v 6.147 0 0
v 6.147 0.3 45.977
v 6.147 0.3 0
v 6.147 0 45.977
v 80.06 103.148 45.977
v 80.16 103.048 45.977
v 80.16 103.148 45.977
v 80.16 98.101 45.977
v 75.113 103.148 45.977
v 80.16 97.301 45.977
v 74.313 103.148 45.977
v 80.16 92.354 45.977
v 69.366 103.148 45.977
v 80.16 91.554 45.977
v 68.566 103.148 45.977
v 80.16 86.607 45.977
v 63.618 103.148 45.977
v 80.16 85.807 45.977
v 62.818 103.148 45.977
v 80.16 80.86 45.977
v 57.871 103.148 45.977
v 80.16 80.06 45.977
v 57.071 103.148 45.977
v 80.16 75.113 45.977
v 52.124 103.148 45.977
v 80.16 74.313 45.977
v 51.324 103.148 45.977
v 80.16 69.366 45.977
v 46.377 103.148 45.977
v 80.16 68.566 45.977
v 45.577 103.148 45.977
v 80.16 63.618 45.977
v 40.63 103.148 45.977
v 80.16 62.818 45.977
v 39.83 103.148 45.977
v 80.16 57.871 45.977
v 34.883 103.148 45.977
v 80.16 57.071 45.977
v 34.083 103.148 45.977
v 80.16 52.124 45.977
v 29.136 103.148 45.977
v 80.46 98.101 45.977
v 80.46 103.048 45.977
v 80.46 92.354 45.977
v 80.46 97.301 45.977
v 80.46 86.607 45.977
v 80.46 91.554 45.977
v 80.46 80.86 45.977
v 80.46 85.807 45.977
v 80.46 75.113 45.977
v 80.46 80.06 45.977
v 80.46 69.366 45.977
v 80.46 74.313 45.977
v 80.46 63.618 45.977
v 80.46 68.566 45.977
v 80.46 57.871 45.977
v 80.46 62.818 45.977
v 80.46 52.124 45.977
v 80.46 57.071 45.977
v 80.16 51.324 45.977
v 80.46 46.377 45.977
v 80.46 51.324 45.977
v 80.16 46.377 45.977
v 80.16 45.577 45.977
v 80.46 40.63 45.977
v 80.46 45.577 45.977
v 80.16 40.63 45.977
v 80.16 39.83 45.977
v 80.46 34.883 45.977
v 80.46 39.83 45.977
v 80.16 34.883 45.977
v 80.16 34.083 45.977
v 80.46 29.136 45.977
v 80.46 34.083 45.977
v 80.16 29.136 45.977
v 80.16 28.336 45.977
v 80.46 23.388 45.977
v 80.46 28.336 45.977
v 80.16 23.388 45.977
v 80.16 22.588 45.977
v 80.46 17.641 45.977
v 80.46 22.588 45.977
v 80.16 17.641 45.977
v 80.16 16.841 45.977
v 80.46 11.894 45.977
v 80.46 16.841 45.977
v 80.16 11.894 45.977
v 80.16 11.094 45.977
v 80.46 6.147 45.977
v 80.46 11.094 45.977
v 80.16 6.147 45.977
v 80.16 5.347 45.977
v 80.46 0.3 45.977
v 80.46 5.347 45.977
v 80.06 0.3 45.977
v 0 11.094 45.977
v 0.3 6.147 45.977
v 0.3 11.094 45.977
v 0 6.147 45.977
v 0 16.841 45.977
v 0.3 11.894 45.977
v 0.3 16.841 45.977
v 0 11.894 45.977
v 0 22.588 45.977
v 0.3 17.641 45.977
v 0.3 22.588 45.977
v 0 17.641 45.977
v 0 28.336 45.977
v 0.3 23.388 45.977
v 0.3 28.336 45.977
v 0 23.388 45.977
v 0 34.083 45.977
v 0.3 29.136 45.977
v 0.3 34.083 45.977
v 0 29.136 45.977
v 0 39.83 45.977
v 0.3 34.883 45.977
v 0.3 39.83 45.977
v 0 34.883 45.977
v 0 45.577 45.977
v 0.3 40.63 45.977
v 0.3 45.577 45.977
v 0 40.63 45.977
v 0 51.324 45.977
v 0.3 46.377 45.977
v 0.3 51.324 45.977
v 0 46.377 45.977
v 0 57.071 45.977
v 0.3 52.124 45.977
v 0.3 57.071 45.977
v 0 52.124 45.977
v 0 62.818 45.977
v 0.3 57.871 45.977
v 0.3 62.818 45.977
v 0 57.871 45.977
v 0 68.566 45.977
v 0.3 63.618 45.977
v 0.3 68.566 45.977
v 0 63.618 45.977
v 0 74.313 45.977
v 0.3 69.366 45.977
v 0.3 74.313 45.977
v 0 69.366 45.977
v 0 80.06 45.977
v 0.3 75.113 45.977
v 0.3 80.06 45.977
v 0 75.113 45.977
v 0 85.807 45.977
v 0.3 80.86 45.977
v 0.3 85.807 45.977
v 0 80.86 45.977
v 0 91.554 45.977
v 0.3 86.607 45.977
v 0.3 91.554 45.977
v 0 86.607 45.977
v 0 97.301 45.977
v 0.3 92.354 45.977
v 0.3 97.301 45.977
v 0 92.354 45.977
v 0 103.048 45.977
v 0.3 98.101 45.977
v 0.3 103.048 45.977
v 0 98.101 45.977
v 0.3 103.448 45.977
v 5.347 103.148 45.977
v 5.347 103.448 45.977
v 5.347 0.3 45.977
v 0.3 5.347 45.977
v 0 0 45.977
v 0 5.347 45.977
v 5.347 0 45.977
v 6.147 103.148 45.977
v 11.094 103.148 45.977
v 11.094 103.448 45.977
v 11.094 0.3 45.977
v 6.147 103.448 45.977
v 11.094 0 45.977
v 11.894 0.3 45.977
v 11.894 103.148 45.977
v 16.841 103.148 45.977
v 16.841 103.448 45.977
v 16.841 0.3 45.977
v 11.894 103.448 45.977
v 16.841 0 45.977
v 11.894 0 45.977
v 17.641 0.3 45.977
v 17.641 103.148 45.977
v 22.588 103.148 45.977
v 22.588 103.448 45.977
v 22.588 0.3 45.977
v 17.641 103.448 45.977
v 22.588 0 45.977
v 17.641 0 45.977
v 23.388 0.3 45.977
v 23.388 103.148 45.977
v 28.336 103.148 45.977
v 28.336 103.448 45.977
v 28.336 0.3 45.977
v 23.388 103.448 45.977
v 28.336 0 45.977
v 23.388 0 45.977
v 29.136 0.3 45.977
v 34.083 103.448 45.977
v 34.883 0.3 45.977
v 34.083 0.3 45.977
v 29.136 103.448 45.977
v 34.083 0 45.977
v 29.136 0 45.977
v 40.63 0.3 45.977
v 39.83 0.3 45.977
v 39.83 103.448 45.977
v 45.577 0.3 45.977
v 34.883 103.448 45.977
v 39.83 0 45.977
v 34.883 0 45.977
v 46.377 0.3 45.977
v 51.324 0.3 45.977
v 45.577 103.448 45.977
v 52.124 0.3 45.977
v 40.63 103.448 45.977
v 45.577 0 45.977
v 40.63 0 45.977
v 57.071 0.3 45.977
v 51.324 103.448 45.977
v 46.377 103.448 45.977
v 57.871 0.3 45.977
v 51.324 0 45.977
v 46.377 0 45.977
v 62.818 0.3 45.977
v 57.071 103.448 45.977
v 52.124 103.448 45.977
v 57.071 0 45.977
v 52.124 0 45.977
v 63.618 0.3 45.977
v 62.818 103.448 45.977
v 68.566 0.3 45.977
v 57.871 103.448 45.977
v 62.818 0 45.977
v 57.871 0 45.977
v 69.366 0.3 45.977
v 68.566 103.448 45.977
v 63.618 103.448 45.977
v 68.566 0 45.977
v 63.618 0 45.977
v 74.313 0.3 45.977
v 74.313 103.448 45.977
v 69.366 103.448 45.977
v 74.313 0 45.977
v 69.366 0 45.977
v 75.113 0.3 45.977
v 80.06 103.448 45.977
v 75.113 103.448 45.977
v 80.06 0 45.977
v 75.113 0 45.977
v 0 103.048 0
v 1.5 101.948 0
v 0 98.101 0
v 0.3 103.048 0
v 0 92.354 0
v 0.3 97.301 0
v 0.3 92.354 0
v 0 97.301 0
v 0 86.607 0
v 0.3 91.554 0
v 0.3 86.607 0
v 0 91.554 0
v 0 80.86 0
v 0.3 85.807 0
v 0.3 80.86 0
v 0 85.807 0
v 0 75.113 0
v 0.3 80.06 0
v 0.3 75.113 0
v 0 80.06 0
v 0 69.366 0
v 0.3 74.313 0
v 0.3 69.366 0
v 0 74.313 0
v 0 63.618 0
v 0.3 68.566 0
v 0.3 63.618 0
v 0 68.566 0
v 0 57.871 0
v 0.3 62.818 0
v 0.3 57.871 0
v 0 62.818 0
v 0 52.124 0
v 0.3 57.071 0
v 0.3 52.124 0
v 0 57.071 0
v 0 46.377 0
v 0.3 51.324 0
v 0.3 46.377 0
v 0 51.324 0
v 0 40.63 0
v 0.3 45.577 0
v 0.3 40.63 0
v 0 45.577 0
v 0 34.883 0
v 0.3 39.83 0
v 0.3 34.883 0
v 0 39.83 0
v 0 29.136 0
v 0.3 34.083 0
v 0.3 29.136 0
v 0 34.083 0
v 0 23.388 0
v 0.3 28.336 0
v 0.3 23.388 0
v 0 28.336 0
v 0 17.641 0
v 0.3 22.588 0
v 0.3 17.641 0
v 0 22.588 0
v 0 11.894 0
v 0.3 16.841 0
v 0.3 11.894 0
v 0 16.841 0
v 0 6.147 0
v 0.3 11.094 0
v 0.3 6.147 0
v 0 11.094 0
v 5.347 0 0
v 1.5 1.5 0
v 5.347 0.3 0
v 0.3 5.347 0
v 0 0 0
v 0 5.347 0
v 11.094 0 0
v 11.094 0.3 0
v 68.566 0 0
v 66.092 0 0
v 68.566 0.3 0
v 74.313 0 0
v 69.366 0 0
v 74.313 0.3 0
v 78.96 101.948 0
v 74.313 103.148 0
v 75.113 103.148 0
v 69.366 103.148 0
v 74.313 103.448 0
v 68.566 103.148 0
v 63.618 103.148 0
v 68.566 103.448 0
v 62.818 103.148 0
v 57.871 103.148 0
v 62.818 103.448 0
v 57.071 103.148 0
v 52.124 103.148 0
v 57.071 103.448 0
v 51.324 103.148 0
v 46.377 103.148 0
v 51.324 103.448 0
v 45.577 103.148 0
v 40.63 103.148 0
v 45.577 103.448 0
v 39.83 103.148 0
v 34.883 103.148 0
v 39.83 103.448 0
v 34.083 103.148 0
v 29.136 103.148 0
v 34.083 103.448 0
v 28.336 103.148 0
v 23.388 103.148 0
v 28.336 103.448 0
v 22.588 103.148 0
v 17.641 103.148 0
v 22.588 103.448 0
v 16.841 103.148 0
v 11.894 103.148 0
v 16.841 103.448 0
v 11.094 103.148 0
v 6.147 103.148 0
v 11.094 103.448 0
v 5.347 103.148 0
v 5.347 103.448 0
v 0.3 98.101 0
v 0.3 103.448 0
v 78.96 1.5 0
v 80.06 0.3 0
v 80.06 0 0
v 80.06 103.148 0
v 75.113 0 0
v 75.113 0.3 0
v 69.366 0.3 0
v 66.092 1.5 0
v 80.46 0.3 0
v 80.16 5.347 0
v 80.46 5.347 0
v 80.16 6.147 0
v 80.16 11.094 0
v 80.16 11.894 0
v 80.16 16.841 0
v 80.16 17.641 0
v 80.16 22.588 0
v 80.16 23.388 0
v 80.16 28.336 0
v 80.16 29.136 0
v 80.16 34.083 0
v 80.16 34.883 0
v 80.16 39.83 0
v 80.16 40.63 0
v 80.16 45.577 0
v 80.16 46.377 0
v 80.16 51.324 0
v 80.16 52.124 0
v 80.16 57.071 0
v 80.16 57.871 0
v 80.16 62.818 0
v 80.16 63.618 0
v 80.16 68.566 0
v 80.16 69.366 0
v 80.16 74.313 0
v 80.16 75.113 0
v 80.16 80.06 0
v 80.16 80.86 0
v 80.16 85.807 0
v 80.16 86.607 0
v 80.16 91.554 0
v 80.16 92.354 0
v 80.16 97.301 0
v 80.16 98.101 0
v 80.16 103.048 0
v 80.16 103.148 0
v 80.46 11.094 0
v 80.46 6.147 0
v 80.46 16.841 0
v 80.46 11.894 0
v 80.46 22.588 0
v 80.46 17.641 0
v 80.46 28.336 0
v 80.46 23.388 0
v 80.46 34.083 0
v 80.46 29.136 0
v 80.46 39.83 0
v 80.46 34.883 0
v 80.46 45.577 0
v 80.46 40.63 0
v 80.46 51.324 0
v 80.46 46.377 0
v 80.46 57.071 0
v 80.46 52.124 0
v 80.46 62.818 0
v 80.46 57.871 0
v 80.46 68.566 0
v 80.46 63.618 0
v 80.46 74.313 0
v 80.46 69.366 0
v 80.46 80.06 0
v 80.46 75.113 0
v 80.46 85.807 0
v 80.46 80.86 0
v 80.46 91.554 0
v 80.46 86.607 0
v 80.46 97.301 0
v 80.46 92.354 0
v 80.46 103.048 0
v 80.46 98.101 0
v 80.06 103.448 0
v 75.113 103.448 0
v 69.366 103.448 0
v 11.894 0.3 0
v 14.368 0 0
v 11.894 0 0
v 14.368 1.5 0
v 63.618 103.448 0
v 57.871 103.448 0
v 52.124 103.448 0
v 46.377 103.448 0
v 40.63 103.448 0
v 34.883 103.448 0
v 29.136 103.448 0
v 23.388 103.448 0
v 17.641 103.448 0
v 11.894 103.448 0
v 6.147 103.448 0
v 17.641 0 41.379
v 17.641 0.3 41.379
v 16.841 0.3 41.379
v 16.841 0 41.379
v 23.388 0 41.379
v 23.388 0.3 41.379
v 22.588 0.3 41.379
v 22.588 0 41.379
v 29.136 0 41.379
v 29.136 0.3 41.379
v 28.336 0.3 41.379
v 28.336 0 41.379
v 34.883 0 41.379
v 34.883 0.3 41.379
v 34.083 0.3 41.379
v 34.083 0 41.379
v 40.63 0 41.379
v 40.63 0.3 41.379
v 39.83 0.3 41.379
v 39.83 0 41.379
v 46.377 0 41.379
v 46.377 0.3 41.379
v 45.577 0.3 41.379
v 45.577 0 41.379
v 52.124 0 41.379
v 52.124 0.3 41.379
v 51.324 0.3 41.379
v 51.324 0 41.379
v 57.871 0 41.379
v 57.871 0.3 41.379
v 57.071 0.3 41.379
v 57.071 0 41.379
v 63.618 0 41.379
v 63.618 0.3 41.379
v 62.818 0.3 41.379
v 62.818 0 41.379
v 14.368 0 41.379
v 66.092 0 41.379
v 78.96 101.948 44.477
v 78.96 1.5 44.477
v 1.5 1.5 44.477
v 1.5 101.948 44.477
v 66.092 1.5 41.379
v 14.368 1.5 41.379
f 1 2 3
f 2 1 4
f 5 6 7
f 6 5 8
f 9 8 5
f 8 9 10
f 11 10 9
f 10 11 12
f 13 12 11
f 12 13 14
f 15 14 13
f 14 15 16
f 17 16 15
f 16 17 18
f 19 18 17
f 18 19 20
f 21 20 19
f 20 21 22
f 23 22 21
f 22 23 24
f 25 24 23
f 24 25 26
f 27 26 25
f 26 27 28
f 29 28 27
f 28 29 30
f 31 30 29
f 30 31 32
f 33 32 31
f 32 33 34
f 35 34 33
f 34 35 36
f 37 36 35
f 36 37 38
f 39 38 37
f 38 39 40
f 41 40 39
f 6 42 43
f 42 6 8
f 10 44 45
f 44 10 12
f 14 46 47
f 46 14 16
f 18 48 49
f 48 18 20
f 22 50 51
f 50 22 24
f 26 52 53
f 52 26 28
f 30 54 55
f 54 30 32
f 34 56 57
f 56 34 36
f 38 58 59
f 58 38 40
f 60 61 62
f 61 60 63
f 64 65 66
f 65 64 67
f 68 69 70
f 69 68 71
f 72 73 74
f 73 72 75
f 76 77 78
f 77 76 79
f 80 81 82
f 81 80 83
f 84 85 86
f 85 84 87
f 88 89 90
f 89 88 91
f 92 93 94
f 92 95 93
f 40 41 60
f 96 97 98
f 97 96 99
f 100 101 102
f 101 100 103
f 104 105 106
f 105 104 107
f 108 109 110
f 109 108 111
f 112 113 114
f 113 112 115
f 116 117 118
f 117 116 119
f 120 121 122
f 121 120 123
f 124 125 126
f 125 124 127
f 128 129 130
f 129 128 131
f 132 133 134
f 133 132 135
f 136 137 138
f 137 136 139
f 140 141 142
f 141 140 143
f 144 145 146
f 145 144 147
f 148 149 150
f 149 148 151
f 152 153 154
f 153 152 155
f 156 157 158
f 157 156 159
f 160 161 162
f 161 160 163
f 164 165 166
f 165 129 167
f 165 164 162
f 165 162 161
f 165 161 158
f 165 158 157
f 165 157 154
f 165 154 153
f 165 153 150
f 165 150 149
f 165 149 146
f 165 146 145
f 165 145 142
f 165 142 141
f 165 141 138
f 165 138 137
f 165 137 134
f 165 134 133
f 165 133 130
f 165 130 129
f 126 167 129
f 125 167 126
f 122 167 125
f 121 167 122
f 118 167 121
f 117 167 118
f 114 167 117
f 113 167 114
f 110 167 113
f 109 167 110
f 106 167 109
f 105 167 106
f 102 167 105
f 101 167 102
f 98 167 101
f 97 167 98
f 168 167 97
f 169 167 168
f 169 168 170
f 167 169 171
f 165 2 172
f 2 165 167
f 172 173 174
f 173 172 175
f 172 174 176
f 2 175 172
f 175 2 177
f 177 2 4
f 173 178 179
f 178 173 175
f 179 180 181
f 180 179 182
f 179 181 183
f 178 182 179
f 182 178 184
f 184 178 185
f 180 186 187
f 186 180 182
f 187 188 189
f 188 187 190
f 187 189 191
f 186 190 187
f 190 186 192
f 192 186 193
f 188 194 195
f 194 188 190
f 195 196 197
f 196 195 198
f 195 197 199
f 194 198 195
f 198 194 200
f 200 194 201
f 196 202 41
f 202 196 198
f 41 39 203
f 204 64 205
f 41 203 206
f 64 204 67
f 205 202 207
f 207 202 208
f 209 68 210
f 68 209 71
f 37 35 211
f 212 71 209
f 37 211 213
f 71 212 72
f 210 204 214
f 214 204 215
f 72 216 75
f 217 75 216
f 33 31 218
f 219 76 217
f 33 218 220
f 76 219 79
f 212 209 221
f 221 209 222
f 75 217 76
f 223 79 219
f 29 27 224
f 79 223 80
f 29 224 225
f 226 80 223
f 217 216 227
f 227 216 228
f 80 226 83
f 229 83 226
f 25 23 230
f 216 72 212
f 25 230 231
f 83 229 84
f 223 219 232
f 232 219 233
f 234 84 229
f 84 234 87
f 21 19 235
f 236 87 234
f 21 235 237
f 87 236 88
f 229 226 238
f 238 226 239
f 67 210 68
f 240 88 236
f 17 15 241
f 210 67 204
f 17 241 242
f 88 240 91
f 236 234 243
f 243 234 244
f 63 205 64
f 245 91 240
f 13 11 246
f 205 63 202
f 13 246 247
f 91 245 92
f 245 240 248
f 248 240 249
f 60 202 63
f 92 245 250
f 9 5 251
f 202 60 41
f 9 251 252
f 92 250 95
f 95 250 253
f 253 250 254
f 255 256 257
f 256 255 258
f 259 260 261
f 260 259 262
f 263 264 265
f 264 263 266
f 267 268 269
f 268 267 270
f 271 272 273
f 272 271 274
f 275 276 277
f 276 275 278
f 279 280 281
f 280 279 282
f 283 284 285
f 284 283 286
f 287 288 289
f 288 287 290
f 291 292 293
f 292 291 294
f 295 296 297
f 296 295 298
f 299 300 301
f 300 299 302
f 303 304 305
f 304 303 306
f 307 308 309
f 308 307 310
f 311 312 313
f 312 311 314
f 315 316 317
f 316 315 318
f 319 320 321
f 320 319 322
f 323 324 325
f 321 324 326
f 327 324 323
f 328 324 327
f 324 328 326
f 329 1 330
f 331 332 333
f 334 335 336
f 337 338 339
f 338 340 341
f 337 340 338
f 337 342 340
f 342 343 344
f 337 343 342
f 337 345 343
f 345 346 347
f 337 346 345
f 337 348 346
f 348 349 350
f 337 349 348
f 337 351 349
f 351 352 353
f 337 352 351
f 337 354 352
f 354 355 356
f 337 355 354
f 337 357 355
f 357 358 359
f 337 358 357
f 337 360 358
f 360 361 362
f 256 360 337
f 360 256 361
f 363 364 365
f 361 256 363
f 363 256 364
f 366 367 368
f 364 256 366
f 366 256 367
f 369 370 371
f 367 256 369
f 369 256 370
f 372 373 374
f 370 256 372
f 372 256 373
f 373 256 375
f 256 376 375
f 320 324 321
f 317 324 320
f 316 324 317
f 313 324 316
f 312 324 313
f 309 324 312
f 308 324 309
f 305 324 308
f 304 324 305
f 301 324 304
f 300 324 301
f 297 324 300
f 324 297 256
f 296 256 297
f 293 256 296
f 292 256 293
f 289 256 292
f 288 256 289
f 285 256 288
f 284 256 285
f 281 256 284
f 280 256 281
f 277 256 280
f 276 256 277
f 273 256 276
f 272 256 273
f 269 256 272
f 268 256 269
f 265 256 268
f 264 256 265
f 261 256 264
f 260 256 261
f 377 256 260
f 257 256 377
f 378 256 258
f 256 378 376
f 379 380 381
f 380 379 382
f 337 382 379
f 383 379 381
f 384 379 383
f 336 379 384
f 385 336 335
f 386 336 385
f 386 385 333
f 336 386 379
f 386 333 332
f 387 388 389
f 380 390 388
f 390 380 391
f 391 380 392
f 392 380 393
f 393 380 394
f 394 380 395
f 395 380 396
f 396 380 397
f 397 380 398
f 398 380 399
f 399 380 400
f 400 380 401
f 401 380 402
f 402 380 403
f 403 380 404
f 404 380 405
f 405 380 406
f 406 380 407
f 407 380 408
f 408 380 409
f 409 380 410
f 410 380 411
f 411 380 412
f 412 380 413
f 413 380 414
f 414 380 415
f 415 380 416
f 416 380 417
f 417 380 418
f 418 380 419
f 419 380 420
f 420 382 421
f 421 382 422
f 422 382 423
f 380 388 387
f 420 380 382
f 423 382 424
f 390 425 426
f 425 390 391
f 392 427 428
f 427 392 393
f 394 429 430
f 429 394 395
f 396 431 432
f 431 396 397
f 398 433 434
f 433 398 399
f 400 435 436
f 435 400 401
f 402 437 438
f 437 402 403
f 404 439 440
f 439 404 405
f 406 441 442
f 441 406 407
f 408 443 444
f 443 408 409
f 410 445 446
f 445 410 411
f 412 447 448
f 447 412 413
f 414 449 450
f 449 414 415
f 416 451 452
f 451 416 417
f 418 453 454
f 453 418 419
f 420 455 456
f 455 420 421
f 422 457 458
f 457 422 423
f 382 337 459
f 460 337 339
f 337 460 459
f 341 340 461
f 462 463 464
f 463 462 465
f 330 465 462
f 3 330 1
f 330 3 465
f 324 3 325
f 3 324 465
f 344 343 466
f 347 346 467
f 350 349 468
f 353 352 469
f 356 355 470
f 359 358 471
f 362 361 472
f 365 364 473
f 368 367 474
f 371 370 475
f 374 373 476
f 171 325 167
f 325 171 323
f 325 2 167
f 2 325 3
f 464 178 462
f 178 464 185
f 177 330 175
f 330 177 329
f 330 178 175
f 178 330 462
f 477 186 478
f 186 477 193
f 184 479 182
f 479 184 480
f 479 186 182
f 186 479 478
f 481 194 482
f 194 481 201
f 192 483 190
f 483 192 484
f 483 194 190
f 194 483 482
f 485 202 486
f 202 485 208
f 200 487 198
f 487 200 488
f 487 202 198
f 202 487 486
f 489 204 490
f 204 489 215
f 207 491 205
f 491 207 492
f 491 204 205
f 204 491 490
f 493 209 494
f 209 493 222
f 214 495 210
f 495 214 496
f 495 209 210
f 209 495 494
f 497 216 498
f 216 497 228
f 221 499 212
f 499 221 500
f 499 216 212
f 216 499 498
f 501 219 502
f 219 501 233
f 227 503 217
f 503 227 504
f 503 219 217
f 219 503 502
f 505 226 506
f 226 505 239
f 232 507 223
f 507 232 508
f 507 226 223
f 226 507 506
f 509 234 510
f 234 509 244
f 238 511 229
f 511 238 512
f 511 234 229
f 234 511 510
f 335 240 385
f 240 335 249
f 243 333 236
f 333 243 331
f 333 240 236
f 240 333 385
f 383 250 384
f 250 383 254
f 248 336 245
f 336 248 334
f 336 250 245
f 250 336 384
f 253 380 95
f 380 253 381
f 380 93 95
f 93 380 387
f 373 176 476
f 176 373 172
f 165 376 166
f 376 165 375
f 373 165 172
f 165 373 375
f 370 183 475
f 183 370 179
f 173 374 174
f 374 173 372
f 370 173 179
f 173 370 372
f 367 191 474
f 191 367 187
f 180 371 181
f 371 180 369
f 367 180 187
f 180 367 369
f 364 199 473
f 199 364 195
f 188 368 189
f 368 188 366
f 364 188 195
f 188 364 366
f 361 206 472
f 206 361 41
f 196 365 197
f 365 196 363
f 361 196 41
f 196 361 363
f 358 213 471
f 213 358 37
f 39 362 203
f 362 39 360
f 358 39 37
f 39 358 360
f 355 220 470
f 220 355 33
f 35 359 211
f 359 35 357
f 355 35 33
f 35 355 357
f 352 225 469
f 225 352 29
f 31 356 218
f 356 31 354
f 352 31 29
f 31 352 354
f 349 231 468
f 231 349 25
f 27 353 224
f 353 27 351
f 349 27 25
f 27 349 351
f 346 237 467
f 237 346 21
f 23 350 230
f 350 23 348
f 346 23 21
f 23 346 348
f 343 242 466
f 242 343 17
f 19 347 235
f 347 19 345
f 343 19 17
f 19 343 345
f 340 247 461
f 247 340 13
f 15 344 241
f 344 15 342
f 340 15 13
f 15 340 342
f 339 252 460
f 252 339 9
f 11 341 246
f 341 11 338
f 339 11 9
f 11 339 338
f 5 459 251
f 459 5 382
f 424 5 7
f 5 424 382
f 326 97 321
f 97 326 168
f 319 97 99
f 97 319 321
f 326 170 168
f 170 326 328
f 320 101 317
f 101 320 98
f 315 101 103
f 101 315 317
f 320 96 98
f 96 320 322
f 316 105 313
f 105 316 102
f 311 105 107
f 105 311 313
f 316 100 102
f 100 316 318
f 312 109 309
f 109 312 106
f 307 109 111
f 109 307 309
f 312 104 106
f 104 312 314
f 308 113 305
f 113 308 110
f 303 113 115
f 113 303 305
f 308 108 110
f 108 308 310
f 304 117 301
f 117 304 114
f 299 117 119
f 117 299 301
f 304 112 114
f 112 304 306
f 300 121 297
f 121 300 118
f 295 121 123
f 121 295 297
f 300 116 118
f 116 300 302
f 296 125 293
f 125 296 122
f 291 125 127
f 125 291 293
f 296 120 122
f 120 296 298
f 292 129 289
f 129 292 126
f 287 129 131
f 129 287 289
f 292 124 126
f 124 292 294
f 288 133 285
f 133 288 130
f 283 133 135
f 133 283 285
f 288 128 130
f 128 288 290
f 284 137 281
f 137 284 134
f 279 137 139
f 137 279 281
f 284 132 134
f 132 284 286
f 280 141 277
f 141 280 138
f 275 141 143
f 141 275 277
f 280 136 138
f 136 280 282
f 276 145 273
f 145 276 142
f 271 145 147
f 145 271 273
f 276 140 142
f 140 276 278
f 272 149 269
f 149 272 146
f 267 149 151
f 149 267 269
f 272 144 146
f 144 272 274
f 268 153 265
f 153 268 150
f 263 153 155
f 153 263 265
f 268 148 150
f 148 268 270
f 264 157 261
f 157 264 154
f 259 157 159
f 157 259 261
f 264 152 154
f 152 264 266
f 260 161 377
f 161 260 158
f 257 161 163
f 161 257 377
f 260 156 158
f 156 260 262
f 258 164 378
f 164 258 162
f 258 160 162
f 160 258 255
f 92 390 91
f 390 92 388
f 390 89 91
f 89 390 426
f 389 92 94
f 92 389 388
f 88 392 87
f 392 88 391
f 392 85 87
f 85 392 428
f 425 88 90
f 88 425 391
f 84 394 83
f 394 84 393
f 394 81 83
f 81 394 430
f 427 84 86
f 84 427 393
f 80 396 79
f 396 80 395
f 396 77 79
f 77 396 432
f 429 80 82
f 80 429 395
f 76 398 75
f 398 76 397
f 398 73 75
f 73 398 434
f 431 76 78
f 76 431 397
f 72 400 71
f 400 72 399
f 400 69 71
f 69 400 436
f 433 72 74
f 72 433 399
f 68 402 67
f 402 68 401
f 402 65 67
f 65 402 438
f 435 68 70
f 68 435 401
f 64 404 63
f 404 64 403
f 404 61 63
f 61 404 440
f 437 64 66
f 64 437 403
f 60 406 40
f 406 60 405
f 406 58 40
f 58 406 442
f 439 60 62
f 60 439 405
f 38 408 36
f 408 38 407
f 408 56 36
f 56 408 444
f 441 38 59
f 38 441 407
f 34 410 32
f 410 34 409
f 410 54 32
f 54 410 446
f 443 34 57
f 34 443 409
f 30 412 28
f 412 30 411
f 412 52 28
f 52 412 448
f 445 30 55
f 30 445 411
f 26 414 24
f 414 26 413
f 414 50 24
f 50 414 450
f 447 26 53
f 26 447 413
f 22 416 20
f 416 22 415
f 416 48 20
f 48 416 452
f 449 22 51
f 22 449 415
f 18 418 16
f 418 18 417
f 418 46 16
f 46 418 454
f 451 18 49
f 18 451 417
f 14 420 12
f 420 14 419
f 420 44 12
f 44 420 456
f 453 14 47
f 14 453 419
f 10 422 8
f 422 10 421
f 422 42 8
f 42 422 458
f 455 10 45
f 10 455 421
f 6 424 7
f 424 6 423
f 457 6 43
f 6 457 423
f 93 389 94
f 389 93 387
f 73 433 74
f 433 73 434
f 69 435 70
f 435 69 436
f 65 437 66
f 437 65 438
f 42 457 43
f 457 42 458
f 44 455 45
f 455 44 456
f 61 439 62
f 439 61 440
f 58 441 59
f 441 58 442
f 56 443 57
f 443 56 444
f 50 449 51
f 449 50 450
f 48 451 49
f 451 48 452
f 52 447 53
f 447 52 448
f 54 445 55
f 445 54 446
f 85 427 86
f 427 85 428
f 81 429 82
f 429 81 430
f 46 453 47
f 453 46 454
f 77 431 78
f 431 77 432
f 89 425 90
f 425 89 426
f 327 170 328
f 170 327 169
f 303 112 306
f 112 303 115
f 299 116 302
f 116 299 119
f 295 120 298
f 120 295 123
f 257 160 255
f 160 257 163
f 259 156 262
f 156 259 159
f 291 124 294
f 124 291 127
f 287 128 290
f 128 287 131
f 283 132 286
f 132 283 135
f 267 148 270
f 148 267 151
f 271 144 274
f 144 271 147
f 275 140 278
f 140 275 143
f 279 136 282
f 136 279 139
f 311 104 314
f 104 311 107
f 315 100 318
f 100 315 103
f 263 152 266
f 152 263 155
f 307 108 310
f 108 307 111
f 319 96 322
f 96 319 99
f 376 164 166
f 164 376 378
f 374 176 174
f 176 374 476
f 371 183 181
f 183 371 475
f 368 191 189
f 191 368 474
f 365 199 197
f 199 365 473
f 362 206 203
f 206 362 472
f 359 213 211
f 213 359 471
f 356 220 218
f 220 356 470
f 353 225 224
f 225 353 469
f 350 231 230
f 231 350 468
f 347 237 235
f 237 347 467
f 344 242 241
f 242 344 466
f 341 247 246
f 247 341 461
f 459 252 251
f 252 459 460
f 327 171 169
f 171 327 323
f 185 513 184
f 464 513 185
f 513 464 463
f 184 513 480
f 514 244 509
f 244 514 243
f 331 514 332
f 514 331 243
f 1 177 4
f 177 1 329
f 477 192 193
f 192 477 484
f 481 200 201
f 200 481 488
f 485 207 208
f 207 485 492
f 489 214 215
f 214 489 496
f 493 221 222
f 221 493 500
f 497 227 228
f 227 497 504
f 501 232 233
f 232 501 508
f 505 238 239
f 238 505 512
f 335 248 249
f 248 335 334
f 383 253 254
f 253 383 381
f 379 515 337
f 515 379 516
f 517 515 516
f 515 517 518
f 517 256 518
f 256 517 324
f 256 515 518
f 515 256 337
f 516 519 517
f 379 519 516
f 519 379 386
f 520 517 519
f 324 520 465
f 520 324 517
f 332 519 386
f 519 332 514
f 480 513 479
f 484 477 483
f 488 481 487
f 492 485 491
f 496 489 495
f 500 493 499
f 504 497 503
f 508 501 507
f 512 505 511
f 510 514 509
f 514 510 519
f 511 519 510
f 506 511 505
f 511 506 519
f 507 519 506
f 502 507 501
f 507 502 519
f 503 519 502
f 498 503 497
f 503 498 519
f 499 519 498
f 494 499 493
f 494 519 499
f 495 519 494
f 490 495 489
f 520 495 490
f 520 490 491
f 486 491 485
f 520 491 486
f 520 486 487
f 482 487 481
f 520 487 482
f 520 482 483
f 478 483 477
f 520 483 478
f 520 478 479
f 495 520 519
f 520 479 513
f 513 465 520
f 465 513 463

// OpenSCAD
/*
 * PROMPT: Cities-Skylines-style police station garage annex in H0 scale (1:87).
 * Single-storey building with large vehicle bay opening on front face, vertical metal
 * panel siding grooves on all four walls, closed flat roof. FDM printable hollow
 * shell open bottom.
 */

$fn = 32;
S = 1 / 87;

wall_t = 1.5;

// ── GARAGE ────────────────────────────────────────────────────────────────────
annex_w_real  = 7000;   //  80.5 mm H0
annex_d_real  = 9000;   // 103.4 mm H0
annex_h_real  = 4000;   //  46.0 mm H0
garage_w_real = 4500;   //  51.7 mm H0  (vehicle bay opening width)
garage_h_real = 3600;   //  41.4 mm H0  (vehicle bay opening height)

siding_p_real = 500;
siding_w      = 0.8;
siding_d      = 0.3;

// ── DERIVED ───────────────────────────────────────────────────────────────────
annex_w  = annex_w_real * S;
annex_d  = annex_d_real * S;
annex_h  = annex_h_real * S;
garage_w = garage_w_real * S;
garage_h = garage_h_real * S;

siding_p = siding_p_real * S;

// ── MODULES ───────────────────────────────────────────────────────────────────

module siding_x(ox, oy, fw, h, neg_y) {
    n = floor(fw / siding_p);
    for (i = [1 : n]) {
        gx = ox + i * siding_p - siding_w / 2;
        if (neg_y) {
            translate([gx, oy - 1, 0]) cube([siding_w, siding_d + 1, h]);
        } else {
            translate([gx, oy - siding_d, 0]) cube([siding_w, siding_d + 1, h]);
        }
    }
}

module siding_y(ox, oy, fd, h, neg_x) {
    n = floor(fd / siding_p);
    for (i = [1 : n]) {
        gy = oy + i * siding_p - siding_w / 2;
        if (neg_x) {
            translate([ox - 1, gy, 0]) cube([siding_d + 1, siding_w, h]);
        } else {
            translate([ox - siding_d, gy, 0]) cube([siding_d + 1, siding_w, h]);
        }
    }
}

module garage_shell() {
    difference() {
        cube([annex_w, annex_d, annex_h]);
        // hollow, wall_t solid at top forms the roof
        translate([wall_t, wall_t, 0])
            cube([annex_w - 2*wall_t, annex_d - 2*wall_t, annex_h - wall_t]);
        // vehicle bay opening centred on front face
        translate([(annex_w - garage_w)/2, -1, 0])
            cube([garage_w, wall_t + 2, garage_h]);
        // siding on all four faces
        siding_x(0,       0,       annex_w, annex_h, true);
        siding_x(0,       annex_d, annex_w, annex_h, false);
        siding_y(0,       0,       annex_d, annex_h, true);
        siding_y(annex_w, 0,       annex_d, annex_h, false);
    }
}

// ── ASSEMBLY ──────────────────────────────────────────────────────────────────
garage_shell();
